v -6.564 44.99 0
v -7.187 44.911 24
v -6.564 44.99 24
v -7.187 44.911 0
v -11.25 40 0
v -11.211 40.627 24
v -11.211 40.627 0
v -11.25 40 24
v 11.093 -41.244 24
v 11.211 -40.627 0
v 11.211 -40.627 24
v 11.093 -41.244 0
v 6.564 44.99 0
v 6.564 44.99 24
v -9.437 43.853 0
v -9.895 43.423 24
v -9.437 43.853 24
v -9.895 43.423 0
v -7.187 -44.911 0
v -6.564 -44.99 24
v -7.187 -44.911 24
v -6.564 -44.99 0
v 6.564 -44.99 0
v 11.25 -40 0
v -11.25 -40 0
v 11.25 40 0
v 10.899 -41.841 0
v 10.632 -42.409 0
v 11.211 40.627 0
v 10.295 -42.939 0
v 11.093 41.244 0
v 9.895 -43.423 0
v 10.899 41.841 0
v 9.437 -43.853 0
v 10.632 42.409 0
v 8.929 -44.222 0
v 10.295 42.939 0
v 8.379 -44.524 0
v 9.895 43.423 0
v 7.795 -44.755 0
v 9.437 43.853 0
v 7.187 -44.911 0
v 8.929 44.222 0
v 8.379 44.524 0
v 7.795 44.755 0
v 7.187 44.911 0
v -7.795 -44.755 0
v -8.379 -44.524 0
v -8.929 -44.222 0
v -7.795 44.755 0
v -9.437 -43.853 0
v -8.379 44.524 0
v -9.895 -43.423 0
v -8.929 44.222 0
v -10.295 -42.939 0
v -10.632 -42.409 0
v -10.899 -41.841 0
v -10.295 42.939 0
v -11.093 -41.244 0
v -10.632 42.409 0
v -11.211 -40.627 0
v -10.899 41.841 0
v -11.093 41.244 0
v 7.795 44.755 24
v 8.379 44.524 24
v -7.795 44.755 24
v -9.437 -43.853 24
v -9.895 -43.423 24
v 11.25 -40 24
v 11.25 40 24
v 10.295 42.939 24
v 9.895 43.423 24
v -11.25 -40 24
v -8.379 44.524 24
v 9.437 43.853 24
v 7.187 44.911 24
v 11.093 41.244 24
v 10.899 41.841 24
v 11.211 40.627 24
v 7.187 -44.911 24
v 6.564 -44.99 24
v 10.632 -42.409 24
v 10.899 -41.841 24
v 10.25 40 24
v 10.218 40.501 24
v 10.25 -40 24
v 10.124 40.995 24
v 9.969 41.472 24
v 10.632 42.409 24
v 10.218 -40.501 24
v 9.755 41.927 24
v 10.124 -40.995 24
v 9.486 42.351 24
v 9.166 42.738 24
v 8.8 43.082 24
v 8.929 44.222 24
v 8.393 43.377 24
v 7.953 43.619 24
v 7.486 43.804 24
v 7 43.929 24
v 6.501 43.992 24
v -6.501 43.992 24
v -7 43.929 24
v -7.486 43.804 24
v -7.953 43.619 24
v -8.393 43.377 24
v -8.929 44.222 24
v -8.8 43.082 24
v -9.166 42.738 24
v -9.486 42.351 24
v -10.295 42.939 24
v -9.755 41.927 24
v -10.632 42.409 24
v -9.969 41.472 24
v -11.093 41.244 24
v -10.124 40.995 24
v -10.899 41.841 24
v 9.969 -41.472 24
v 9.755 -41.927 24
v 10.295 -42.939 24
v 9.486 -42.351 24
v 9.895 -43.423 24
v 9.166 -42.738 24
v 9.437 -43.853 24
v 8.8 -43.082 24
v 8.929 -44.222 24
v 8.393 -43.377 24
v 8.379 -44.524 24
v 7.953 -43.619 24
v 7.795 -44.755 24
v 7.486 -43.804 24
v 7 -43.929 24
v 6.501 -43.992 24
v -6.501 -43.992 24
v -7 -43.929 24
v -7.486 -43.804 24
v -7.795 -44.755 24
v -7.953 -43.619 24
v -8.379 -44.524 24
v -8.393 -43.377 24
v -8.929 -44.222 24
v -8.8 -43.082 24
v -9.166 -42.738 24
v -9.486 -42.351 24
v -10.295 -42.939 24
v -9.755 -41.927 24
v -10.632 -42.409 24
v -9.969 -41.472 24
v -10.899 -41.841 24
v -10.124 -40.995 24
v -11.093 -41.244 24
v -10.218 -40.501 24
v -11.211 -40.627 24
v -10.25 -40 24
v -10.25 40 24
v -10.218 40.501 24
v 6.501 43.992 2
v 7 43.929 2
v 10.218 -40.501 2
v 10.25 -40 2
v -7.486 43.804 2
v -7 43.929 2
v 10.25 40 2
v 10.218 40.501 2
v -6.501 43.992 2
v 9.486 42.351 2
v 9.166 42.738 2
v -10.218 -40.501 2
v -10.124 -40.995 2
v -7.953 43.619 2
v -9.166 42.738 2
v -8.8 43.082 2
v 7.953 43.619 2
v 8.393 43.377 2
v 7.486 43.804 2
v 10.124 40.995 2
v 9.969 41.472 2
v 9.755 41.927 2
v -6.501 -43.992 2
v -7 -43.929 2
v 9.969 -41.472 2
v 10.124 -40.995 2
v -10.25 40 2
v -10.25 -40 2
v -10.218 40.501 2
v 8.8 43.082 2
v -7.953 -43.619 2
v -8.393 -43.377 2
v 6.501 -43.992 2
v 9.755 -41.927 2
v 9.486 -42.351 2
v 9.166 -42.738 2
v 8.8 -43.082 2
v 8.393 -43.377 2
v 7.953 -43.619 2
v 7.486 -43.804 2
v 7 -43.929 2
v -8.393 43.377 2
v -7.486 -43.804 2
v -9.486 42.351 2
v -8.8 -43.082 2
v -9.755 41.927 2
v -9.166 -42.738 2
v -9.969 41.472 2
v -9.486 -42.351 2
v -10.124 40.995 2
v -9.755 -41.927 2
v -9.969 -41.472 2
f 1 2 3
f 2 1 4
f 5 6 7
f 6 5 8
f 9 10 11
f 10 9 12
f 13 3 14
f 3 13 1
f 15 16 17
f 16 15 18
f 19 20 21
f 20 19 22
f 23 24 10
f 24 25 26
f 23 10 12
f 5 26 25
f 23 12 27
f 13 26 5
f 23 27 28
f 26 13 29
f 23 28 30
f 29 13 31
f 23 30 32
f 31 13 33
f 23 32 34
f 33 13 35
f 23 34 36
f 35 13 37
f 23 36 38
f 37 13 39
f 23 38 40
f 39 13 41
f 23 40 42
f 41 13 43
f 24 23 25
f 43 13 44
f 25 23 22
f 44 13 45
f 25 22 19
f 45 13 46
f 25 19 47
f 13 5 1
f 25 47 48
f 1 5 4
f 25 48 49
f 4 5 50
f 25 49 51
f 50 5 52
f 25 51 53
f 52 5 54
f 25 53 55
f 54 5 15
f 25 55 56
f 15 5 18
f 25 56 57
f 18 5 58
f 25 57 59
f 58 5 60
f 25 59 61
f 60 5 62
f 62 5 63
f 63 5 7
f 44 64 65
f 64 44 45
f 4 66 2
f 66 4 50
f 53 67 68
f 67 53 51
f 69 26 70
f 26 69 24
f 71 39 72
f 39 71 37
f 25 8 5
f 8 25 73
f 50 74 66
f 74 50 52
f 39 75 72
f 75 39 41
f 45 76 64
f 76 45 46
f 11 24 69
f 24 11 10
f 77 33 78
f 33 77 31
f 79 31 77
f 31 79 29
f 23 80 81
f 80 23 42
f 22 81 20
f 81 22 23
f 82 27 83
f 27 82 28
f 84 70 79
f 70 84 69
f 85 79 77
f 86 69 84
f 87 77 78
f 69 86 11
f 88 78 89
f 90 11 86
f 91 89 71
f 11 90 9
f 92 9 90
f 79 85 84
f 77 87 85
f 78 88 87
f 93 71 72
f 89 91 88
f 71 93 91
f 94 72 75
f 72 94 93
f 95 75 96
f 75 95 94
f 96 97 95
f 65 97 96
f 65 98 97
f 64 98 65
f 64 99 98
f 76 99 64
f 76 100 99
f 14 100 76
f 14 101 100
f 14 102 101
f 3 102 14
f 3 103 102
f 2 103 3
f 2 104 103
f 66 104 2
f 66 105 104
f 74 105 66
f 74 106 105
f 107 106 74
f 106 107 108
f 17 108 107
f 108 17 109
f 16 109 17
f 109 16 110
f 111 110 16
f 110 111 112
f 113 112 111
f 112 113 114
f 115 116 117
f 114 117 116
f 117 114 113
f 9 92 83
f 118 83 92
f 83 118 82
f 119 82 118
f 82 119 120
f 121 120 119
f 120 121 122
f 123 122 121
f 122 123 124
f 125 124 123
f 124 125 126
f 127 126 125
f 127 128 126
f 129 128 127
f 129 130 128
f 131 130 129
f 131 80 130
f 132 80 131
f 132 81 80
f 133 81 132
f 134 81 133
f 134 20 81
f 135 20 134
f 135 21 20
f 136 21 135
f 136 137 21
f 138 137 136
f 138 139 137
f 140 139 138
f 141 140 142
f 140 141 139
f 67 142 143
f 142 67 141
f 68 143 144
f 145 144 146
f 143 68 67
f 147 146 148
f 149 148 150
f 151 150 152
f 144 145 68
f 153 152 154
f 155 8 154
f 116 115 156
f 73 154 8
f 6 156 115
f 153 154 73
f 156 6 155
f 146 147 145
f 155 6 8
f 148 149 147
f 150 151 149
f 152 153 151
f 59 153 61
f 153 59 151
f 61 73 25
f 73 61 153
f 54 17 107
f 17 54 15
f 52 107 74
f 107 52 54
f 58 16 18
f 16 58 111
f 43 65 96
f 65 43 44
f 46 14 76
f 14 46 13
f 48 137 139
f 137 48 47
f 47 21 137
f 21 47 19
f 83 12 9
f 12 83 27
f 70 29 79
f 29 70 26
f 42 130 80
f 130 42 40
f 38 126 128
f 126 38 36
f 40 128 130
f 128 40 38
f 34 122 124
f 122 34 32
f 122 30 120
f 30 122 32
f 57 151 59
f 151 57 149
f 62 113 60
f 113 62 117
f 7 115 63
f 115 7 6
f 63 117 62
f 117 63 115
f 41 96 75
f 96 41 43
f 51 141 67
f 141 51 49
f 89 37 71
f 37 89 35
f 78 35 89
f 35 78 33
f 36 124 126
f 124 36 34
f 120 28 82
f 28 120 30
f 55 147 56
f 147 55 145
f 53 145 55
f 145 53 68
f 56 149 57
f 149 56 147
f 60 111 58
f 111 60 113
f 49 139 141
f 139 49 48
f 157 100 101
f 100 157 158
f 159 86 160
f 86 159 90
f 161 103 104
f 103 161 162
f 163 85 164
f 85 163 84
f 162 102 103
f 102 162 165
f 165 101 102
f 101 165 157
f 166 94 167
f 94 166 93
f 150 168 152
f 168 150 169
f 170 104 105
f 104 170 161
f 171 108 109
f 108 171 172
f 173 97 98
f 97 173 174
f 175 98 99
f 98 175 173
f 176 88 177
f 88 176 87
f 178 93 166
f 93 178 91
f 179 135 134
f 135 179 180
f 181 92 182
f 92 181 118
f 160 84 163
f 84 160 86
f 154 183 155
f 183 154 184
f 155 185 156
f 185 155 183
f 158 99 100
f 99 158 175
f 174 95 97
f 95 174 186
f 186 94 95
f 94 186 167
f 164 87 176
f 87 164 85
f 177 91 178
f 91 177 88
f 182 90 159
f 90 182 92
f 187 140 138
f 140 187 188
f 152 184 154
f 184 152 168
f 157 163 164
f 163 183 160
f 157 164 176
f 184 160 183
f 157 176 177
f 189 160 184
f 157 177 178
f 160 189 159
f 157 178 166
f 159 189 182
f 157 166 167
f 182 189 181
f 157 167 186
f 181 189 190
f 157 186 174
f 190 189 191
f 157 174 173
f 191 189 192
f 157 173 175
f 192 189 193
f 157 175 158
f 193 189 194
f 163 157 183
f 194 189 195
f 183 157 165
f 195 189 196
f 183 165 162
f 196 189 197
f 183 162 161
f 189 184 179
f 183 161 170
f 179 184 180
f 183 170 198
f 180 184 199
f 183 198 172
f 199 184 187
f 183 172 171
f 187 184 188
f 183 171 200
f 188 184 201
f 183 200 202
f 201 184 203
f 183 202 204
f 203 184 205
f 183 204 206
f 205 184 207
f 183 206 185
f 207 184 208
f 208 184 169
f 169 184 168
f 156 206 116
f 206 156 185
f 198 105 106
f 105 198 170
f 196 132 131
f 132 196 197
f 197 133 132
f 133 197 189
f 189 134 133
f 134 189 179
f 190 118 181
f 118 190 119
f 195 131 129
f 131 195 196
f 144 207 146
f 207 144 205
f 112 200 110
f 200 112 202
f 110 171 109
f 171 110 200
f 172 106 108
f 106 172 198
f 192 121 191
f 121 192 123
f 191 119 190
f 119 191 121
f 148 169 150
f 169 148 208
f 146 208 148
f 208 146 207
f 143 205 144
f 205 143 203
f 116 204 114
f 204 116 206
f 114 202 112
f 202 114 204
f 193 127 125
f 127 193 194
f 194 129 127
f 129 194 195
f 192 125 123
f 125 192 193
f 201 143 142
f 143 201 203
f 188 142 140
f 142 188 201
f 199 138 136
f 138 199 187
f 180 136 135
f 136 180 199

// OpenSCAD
$fn = 50;


difference() {
	union() {
		hull() {
			translate(v = [-6.2500000000, 40.0000000000, 0]) {
				cylinder(h = 24, r = 5);
			}
			translate(v = [6.2500000000, 40.0000000000, 0]) {
				cylinder(h = 24, r = 5);
			}
			translate(v = [-6.2500000000, -40.0000000000, 0]) {
				cylinder(h = 24, r = 5);
			}
			translate(v = [6.2500000000, -40.0000000000, 0]) {
				cylinder(h = 24, r = 5);
			}
		}
	}
	union() {
		translate(v = [0, 0, 2]) {
			hull() {
				translate(v = [-6.2500000000, 40.0000000000, 0]) {
					cylinder(h = 22, r = 4);
				}
				translate(v = [6.2500000000, 40.0000000000, 0]) {
					cylinder(h = 22, r = 4);
				}
				translate(v = [-6.2500000000, -40.0000000000, 0]) {
					cylinder(h = 22, r = 4);
				}
				translate(v = [6.2500000000, -40.0000000000, 0]) {
					cylinder(h = 22, r = 4);
				}
			}
		}
	}
}
